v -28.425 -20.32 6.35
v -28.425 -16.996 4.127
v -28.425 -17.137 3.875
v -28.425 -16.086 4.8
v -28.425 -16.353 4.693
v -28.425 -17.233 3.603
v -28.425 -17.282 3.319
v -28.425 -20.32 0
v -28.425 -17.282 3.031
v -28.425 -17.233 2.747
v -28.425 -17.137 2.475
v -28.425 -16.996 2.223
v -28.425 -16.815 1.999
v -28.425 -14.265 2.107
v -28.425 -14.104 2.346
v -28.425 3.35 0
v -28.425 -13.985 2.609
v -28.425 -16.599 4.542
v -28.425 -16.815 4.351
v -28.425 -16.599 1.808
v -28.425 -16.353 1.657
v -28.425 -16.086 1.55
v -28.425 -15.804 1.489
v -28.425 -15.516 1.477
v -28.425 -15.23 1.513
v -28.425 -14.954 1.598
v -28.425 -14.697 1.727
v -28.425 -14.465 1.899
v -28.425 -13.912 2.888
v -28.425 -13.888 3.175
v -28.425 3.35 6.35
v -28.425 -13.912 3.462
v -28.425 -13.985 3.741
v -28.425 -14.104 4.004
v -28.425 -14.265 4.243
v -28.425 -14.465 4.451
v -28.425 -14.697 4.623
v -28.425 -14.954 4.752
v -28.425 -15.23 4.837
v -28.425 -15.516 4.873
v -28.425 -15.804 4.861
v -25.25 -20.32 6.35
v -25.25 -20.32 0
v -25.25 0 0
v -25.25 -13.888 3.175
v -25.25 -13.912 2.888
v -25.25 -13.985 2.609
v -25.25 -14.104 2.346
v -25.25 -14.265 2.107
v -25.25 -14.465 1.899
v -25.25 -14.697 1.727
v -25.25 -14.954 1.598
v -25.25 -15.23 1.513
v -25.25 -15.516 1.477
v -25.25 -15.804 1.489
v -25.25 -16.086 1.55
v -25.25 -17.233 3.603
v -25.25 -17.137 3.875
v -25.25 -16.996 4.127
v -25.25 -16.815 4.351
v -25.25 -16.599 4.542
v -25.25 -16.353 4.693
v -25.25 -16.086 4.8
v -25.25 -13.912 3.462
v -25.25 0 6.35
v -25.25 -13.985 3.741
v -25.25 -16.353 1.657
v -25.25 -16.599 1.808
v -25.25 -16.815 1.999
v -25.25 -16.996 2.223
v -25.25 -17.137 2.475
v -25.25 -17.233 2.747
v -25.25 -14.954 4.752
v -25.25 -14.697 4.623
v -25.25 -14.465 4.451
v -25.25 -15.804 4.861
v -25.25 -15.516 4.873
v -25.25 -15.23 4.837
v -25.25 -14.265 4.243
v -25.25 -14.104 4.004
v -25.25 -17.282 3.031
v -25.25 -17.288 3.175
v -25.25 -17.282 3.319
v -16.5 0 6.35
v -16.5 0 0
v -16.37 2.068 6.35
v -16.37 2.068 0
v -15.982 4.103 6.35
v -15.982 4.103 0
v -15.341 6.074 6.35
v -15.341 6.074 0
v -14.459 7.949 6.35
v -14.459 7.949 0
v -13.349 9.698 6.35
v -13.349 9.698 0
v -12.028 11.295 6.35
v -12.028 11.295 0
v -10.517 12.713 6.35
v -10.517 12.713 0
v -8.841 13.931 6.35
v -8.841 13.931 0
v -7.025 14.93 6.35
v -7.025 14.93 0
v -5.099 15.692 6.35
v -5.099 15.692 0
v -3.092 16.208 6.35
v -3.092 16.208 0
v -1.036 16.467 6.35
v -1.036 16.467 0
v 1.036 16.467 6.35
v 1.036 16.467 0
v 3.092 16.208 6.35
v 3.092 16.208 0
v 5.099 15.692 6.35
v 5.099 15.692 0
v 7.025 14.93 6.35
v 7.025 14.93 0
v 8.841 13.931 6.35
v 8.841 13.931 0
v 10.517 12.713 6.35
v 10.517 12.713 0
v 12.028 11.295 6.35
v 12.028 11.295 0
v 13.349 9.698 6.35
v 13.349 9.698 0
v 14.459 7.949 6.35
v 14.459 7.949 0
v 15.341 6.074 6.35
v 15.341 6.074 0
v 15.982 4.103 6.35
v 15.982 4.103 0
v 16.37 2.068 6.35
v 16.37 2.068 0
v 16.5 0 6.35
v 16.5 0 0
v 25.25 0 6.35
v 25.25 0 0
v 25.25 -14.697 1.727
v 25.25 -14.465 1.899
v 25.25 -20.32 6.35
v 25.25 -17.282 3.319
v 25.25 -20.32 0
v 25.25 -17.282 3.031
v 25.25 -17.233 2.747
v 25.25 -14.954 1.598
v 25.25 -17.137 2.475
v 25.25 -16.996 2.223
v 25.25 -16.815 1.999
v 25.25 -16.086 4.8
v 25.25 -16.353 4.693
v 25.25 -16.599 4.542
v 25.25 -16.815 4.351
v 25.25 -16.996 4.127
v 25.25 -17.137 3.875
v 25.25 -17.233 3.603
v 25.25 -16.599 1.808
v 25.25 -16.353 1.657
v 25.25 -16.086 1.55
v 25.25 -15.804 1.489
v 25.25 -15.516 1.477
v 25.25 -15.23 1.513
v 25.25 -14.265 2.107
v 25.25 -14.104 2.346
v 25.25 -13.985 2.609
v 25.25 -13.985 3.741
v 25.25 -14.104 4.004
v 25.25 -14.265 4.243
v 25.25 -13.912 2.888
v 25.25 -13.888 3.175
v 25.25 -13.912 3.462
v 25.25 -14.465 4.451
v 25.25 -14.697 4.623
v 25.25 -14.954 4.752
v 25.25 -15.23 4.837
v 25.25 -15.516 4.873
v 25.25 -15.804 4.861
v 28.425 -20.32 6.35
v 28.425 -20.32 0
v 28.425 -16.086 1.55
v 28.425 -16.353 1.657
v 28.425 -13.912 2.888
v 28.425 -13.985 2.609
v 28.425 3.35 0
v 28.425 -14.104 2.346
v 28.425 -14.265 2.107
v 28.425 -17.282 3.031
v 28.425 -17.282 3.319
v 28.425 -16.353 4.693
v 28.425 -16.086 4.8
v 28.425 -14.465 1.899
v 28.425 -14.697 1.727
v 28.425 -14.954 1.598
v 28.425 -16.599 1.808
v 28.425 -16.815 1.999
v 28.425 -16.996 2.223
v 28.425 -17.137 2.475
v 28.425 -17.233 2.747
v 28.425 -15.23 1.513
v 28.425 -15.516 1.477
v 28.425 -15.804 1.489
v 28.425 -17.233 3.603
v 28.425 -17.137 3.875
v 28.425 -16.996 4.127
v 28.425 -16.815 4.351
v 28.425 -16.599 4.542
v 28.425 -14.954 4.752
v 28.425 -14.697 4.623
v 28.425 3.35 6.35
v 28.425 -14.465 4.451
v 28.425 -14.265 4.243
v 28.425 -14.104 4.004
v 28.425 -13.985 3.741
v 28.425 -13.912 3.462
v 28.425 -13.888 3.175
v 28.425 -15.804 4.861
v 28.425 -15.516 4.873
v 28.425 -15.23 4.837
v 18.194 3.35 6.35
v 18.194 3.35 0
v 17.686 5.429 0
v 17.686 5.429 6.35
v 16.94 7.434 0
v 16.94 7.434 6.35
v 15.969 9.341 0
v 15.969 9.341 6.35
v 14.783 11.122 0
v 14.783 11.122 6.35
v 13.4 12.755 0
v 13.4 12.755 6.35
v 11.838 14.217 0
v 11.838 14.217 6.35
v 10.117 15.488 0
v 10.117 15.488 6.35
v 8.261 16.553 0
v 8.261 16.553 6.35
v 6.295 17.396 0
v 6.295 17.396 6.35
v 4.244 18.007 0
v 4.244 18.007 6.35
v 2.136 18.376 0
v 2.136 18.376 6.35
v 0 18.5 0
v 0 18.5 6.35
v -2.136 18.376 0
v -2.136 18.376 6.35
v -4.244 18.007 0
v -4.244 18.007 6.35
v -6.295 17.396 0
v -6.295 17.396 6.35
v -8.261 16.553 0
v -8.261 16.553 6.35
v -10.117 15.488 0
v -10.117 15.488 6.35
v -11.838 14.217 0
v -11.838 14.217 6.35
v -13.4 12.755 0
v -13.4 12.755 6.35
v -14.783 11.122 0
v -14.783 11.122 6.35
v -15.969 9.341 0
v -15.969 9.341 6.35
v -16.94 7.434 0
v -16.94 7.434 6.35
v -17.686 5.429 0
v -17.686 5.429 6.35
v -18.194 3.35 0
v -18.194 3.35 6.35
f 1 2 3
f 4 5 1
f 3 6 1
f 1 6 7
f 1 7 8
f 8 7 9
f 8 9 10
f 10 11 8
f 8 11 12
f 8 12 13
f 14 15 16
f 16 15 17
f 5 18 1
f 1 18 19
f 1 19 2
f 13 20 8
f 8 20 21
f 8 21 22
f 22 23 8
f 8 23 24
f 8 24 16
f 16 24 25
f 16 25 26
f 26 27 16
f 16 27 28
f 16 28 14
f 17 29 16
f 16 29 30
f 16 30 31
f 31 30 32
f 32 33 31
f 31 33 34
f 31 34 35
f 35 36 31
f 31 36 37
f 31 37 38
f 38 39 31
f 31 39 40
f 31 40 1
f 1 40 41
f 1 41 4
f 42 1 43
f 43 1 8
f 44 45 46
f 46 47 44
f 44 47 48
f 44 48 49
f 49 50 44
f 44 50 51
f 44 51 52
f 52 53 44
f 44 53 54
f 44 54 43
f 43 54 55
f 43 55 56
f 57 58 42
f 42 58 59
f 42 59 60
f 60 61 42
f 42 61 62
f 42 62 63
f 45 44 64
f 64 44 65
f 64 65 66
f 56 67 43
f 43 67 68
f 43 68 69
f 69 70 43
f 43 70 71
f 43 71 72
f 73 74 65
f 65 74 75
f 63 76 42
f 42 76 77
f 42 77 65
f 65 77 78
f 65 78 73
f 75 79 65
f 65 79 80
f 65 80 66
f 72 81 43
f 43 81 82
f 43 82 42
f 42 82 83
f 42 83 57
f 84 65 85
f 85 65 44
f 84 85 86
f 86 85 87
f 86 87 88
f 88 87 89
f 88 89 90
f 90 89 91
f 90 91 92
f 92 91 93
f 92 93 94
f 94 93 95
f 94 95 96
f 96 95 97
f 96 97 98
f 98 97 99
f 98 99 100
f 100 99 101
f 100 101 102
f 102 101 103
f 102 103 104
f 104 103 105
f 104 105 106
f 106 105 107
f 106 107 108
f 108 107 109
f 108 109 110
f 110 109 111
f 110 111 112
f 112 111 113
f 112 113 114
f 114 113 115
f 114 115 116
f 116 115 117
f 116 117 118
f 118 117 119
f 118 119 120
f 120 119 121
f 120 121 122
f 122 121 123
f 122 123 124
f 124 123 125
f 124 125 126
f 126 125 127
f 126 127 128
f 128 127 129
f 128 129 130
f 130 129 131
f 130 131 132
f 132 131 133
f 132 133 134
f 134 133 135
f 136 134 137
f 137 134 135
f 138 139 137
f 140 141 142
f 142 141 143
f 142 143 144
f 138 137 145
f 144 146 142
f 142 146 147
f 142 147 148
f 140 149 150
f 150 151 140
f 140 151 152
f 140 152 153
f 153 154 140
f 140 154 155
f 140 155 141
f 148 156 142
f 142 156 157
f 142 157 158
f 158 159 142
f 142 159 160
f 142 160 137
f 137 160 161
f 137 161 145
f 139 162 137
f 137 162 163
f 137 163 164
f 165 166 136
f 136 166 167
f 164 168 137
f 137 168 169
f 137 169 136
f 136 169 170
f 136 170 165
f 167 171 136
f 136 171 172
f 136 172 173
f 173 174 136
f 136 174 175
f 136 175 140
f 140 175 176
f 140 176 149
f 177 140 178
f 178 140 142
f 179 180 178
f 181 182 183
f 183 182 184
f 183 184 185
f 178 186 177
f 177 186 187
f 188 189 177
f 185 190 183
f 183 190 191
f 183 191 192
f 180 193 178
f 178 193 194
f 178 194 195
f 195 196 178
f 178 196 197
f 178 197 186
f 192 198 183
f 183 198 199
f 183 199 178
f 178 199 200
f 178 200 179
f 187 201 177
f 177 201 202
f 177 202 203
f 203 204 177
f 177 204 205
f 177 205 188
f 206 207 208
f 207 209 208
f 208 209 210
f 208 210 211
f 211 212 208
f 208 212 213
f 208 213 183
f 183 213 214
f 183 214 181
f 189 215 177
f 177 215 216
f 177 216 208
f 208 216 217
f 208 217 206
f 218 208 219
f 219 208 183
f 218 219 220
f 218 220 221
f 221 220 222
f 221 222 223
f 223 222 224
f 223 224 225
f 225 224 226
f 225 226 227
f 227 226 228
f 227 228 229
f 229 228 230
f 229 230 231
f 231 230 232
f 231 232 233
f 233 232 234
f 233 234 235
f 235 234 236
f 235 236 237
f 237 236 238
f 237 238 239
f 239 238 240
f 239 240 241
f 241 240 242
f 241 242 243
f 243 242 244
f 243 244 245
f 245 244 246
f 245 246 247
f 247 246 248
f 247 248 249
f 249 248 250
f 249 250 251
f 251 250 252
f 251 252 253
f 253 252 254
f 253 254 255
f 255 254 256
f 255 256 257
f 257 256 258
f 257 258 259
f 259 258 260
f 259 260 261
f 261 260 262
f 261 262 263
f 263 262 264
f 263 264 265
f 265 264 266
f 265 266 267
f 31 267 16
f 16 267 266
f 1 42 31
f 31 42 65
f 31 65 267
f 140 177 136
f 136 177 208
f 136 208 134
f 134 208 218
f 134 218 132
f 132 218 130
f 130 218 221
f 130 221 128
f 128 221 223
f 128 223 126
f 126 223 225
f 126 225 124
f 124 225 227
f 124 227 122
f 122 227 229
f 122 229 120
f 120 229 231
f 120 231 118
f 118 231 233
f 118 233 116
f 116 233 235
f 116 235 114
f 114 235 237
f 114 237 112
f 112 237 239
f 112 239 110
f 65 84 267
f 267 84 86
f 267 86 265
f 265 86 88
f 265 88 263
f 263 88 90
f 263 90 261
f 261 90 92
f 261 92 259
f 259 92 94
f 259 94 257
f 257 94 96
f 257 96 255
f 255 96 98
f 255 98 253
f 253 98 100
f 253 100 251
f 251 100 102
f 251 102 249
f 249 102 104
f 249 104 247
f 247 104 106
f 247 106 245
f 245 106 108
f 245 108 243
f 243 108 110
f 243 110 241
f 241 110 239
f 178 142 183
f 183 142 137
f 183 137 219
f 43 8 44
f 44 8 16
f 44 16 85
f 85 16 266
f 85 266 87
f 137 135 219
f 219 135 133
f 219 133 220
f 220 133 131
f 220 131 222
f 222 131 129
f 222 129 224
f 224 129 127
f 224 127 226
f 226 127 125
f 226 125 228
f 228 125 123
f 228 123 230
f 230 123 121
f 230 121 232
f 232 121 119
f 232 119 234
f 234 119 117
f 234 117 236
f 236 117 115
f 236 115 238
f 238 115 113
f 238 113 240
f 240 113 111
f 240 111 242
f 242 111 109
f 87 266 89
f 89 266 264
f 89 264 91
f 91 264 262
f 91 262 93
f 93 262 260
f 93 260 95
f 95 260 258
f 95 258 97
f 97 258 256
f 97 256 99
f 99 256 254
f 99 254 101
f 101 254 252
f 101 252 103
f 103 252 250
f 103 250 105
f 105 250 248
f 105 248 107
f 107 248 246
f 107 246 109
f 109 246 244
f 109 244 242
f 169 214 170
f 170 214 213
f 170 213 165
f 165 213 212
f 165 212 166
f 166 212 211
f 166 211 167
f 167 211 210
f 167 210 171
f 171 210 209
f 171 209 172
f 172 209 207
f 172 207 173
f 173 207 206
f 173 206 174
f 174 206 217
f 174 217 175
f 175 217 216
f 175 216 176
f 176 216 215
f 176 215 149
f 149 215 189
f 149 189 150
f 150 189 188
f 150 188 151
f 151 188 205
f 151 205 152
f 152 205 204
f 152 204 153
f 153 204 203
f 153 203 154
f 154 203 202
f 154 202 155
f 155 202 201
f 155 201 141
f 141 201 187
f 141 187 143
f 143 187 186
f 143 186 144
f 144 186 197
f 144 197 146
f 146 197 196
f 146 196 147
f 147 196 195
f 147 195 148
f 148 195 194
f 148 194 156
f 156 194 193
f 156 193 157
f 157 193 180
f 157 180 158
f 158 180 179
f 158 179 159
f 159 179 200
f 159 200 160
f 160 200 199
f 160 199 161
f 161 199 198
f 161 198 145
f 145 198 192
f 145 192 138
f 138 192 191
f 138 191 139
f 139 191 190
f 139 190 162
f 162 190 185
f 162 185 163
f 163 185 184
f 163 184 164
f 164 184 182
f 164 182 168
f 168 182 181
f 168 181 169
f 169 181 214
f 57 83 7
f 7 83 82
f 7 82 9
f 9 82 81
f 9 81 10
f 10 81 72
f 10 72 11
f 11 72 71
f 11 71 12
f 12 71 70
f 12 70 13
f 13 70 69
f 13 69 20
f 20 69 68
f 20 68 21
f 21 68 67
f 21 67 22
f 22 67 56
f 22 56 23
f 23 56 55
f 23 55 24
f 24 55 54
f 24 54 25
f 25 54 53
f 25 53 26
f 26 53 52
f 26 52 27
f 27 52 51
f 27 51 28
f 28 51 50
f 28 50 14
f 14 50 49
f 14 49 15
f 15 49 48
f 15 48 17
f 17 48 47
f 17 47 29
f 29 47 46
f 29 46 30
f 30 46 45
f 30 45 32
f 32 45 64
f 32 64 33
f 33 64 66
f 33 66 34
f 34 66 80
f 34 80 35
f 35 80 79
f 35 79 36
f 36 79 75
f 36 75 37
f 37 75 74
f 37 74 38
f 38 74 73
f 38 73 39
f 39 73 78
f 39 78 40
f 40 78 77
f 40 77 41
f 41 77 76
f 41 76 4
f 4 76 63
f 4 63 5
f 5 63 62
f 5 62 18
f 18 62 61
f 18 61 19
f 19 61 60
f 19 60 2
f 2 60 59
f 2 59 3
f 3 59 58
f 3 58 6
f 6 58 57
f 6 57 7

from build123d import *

# Parameters (mm, degrees)
BOSS_EXTRUDE1_DEPTH = 6.35
SKETCH2_R           = 1.700000029
CUT_EXTRUDE1_DEPTH  = 61.705405925


with BuildPart() as part:
    # Sketch1 → Boss-Extrude1 (new body)
    with BuildSketch(Plane.XY):
        with BuildLine():
            Line((-16.5, 0), (-25.2499952, 0))
            Line((-25.2499952, 0), (-25.2499952, -20.32))
            Line((-25.2499952, -20.32), (-28.4249952, -20.32))
            Line((-28.4249952, -20.32), (-28.4249952, 3.350143749))
            Line((-28.4249952, 3.350143749), (-18.194134683, 3.350143749))
            ThreePointArc((-18.194134683, 3.350143749), (0, 18.5), (18.194134683, 3.350143749))
            Line((18.194134683, 3.350143749), (28.4249952, 3.350143749))
            Line((28.4249952, 3.350143749), (28.4249952, -20.32))
            Line((28.4249952, -20.32), (25.2499952, -20.32))
            Line((25.2499952, -20.32), (25.2499952, 0))
            Line((25.2499952, 0), (16.5, 0))
            ThreePointArc((16.5, 0), (0, 16.5), (-16.5, 0))
        make_face()
    extrude(amount=BOSS_EXTRUDE1_DEPTH)

    # Sketch2 → Cut-Extrude1 (cut, through all)
    with BuildSketch(Plane(origin=(28.4249952, 0, 0), x_dir=(0, 0, -1), z_dir=(1, 0, 0))):
        with Locations(Location((-3.175, -15.587842251, 0), (0, 0, 90))):
            Circle(SKETCH2_R)
    extrude(amount=-CUT_EXTRUDE1_DEPTH, mode=Mode.SUBTRACT)


solid = part.part
